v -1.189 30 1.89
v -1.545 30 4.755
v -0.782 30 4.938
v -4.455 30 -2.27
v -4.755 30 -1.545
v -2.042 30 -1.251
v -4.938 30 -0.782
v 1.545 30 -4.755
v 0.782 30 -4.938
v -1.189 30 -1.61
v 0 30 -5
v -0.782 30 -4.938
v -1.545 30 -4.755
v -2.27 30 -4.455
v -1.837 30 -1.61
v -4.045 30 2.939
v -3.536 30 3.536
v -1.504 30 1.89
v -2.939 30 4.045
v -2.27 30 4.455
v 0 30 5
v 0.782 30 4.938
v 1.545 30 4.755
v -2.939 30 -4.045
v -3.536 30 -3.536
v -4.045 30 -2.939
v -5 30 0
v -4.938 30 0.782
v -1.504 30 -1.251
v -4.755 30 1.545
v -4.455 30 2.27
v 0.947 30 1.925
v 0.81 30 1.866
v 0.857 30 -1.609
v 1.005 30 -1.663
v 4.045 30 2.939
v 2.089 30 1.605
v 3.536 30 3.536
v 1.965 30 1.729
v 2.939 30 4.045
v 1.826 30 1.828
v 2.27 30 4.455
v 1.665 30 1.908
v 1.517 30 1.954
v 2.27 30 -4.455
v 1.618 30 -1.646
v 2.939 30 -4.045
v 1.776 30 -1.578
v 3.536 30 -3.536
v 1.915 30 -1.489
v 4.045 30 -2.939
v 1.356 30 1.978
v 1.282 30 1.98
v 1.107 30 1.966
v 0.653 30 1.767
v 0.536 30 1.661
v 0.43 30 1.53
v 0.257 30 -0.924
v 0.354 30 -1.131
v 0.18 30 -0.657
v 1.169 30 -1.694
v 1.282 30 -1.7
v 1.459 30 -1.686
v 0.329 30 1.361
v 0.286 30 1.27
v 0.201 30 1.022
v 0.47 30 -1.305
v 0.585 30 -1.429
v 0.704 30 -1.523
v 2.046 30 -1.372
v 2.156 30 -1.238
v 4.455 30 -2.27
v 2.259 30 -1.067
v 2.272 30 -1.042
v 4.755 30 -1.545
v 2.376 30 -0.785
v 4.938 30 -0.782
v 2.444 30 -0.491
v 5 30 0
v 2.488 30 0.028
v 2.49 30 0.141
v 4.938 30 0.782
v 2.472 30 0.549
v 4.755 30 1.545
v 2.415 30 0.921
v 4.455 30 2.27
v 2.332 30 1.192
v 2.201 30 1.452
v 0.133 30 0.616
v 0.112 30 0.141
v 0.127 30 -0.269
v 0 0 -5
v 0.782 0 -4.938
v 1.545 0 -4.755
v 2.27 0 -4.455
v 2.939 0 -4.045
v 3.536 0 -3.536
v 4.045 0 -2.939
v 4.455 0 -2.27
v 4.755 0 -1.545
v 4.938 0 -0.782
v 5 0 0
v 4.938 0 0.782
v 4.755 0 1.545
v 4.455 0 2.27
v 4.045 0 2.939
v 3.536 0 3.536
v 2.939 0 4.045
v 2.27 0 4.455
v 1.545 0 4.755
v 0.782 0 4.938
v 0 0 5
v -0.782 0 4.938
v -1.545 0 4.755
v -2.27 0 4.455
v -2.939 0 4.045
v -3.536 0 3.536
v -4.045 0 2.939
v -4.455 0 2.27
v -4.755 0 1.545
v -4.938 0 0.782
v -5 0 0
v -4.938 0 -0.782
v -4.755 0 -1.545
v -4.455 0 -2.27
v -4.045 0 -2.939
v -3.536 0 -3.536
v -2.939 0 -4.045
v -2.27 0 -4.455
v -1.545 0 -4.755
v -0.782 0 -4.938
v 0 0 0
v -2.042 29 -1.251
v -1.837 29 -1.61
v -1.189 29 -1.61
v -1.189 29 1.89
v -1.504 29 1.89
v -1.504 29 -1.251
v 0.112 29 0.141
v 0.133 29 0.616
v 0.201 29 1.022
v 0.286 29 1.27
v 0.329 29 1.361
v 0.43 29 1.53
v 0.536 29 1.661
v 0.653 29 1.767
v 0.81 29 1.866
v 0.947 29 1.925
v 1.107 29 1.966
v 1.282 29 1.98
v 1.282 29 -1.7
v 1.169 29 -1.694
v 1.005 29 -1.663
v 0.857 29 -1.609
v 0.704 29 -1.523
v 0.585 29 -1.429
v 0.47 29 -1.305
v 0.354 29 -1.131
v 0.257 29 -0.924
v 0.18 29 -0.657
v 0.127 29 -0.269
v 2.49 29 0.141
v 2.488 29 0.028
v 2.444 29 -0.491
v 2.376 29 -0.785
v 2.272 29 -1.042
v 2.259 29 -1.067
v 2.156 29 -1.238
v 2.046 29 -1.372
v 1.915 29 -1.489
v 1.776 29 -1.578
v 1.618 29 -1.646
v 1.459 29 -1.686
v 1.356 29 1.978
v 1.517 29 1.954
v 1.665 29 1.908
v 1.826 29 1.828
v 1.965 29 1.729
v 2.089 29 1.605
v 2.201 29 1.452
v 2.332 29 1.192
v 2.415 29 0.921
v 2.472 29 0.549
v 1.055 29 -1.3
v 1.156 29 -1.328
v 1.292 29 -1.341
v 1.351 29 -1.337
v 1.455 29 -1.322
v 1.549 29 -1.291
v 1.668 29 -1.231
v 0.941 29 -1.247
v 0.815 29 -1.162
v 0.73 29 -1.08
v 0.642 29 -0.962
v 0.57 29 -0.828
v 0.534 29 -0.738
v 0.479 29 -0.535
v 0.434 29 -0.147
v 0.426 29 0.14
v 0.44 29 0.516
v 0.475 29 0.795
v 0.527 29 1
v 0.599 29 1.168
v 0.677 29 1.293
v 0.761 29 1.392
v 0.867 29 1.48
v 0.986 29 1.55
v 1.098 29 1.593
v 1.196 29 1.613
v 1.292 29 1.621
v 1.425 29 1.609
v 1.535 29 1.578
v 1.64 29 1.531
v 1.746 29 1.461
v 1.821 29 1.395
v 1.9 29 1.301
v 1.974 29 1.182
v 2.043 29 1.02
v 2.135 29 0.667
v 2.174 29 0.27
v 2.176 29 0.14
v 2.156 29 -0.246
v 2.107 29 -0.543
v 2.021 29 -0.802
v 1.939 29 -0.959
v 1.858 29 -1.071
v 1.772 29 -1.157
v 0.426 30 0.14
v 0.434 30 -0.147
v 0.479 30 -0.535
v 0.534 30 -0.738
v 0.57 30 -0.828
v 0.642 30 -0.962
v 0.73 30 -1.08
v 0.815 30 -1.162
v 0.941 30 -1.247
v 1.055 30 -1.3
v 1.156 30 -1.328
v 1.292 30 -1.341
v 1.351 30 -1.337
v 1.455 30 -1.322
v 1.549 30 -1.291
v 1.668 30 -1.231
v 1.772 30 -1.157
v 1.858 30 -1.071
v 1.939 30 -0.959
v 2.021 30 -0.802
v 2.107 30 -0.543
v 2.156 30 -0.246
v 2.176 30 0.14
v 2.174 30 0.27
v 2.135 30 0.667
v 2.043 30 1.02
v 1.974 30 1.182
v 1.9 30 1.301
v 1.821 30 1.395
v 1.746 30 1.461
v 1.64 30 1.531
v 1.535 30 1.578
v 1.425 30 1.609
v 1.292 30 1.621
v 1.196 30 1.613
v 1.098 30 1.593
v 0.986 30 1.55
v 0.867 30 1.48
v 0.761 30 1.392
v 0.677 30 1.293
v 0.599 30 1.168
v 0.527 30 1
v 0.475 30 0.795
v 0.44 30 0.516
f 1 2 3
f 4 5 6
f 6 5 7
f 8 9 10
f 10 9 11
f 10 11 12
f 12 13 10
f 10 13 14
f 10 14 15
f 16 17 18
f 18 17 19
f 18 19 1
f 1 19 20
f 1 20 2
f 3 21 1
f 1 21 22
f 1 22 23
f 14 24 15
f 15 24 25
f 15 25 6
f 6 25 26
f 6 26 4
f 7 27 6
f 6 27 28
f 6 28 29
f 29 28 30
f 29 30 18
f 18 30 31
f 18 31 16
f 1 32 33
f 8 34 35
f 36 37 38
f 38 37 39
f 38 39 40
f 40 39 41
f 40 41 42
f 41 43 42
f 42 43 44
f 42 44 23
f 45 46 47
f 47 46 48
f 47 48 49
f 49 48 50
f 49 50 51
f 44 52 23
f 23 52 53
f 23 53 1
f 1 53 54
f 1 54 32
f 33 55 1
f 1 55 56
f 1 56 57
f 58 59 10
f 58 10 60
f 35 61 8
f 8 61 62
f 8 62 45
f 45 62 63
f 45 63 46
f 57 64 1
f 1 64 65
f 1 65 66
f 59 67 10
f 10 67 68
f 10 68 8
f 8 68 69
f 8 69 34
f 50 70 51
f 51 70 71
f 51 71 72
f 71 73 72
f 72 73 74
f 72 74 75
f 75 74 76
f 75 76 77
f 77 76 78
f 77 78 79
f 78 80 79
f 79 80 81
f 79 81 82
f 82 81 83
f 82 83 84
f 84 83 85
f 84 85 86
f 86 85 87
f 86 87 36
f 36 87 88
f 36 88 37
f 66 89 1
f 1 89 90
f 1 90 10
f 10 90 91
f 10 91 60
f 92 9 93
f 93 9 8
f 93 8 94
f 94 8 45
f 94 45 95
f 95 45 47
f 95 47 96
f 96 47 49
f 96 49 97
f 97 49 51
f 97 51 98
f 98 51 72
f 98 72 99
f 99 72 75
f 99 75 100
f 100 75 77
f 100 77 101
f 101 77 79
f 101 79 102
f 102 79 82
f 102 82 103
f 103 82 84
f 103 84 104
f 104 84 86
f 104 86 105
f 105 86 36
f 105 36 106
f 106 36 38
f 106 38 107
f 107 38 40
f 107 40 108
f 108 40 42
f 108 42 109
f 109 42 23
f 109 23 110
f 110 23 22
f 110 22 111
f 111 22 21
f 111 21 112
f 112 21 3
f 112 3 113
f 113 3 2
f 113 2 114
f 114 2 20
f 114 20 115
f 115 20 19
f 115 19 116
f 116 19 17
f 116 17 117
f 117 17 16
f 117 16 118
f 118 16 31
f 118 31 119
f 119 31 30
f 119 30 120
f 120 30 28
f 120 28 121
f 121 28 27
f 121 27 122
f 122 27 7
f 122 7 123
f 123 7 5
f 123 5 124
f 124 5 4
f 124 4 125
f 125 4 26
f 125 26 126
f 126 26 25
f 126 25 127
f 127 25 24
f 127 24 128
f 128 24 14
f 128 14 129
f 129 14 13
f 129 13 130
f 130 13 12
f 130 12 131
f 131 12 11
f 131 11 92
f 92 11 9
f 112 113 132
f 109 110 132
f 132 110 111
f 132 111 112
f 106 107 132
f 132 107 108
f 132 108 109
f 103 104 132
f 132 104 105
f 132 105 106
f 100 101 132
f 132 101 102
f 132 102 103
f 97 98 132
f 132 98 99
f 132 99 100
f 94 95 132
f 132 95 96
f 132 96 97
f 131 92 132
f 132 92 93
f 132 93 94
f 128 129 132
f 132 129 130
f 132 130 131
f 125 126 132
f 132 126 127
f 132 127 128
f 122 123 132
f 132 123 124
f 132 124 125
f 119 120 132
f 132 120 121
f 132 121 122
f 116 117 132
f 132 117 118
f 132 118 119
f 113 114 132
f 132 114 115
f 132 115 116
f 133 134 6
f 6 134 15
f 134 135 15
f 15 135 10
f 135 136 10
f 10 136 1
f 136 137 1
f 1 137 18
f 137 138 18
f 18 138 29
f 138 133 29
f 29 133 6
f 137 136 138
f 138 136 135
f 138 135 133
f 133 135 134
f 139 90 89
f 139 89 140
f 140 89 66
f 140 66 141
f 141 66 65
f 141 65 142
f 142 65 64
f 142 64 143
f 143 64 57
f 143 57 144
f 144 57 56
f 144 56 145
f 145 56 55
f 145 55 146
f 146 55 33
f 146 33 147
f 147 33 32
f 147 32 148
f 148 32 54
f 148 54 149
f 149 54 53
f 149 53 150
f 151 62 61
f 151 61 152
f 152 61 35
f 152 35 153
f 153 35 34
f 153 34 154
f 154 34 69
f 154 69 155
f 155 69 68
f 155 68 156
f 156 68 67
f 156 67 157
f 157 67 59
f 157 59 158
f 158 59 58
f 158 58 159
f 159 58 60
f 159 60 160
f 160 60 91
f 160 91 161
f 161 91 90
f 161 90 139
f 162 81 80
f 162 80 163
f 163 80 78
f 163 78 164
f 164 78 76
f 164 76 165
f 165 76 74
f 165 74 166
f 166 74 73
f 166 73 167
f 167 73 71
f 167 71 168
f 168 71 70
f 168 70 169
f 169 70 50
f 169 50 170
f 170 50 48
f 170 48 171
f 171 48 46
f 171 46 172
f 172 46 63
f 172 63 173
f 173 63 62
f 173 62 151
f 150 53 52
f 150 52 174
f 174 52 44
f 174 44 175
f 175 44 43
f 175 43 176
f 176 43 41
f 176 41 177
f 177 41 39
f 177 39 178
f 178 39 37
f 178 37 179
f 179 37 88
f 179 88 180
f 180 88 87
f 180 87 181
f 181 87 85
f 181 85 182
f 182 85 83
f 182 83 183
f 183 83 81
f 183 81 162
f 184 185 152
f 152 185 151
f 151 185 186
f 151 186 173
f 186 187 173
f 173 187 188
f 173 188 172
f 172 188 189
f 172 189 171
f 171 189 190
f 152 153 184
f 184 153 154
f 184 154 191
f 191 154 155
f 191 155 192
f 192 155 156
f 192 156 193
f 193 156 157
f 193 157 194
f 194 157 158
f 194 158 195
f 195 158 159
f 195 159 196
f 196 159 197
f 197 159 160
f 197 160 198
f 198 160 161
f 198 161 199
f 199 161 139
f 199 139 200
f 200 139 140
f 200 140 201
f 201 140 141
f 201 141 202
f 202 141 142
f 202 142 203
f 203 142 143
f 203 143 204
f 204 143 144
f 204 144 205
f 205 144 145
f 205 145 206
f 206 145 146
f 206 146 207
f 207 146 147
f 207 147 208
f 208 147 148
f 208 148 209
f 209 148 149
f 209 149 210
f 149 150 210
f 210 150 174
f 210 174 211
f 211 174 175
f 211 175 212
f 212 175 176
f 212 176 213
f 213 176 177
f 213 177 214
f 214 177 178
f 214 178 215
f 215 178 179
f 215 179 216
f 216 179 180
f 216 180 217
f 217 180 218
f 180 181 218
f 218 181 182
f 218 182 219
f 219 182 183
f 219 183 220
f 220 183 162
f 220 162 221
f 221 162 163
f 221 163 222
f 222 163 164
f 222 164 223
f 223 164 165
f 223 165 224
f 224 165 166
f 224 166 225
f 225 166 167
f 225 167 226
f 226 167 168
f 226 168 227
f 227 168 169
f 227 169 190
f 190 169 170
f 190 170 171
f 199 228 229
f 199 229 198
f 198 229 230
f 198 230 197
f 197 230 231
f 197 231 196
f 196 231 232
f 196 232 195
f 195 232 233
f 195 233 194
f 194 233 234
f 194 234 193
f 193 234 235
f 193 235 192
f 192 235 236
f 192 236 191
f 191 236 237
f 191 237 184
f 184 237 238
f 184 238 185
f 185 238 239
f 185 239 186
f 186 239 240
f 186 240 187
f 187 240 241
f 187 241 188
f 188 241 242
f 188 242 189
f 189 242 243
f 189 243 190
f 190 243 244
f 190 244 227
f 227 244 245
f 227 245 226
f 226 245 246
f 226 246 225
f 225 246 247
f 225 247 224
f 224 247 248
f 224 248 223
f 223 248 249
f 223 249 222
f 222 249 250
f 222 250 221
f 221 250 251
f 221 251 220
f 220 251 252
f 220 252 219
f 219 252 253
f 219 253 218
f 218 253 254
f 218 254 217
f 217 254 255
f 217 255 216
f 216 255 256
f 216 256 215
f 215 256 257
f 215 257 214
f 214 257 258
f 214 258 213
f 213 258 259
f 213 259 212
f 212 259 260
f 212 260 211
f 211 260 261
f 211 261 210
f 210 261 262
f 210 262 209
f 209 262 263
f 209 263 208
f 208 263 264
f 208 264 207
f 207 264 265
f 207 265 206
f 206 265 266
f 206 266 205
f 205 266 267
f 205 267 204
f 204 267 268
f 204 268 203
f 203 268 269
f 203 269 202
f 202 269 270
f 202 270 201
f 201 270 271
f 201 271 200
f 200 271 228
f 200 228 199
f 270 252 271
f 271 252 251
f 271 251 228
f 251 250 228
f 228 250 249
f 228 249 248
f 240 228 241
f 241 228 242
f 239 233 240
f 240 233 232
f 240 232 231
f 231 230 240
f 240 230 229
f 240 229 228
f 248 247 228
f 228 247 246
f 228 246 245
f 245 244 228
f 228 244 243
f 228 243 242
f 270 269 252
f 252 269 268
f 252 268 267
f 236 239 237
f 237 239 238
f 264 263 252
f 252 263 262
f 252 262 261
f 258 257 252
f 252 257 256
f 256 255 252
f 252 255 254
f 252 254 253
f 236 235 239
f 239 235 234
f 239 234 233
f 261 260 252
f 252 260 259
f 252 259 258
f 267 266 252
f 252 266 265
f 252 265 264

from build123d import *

# Parameters (mm, degrees)
SKETCH1_R           = 5
BOSS_EXTRUDE1_DEPTH = 30
CUT_EXTRUDE1_DEPTH  = 1


with BuildPart() as part:
    # Sketch1 → Boss-Extrude1 (new body)
    with BuildSketch(Plane(origin=(0, 0, 0), x_dir=(1, 0, 0), z_dir=(0, 1, 0))):
        Circle(SKETCH1_R)
    extrude(amount=BOSS_EXTRUDE1_DEPTH)

    # Sketch2 → Cut-Extrude1 (cut)
    with BuildSketch(Plane(origin=(0, 30, 0), x_dir=(1, 0, 0), z_dir=(0, 1, 0))):
        Polygon((-1.836629209, 1.610053215), (-1.189493792, 1.610053215), (-1.189493792, -1.889946785), (-1.503596356, -1.889946785), (-1.503596356, 1.251078856), (-2.042057895, 1.251078856), align=None)
        with BuildLine():
            add(Edge.make_bspline(
                [(0.111788259, -0.141349029), (0.112116277, -0.085251641), (0.112753457, 0.023718343), (0.119841878, 0.182502986), (0.131617221, 0.331463275), (0.147754593, 0.470606341), (0.167392574, 0.599968105), (0.19360806, 0.719202862), (0.223420863, 0.828862469), (0.257973309, 0.929304517), (0.296961098, 1.02188222), (0.339395358, 1.108307422), (0.386960153, 1.188449354), (0.436937066, 1.263587144), (0.491349137, 1.332490839), (0.548647928, 1.396133502), (0.611069804, 1.453044252), (0.676492812, 1.504890555), (0.745509277, 1.550340026), (0.816151943, 1.590372765), (0.888907049, 1.624572632), (0.963973232, 1.651463068), (1.04067579, 1.673673915), (1.119282856, 1.688862862), (1.19992422, 1.698419771), (1.254355655, 1.699333439), (1.281960535, 1.699796805)],
                knots=[0, 0, 0, 0, 0.000168282, 0.000326891, 0.000476705, 0.00061646, 0.000747059, 0.00086904, 0.000982494, 0.001087814, 0.001187428, 0.001283689, 0.001376399, 0.001466822, 0.001554203, 0.001639568, 0.001723424, 0.001807301, 0.001889751, 0.001971063, 0.002050735, 0.002130583, 0.002210036, 0.002290062, 0.002370508, 0.002453288, 0.002453288, 0.002453288, 0.002453288], degree=3))
            add(Edge.make_bspline(
                [(1.281960535, 1.699796805), (1.309796013, 1.69930899), (1.365152022, 1.698338879), (1.446992397, 1.689014936), (1.526942079, 1.673543813), (1.604660218, 1.651622839), (1.680785204, 1.624427162), (1.754721612, 1.590340045), (1.826928694, 1.550661177), (1.896258981, 1.5040373), (1.963473596, 1.452055024), (2.026921559, 1.393292355), (2.086608645, 1.328342636), (2.143283951, 1.257900772), (2.195339548, 1.180615687), (2.24491298, 1.097831577), (2.289285016, 1.008100712), (2.332019691, 0.912920245), (2.368906678, 0.809656586), (2.402172923, 0.698891825), (2.429051892, 0.579317638), (2.451441164, 0.451561393), (2.46878606, 0.31515391), (2.481418702, 0.170387594), (2.488091787, 0.017167204), (2.489348488, -0.087590645), (2.489993387, -0.141349029)],
                knots=[0, 0, 0, 0, 8.3481e-05, 0.000166017, 0.000246731, 0.000327534, 0.000408041, 0.000488986, 0.000571522, 0.000654944, 0.000739373, 0.000826202, 0.000914021, 0.001003809, 0.001097153, 0.001193347, 0.001293057, 0.001397277, 0.001506176, 0.001621751, 0.001744038, 0.001873599, 0.002010742, 0.002156422, 0.002309427, 0.002470709, 0.002470709, 0.002470709, 0.002470709], degree=3))
            add(Edge.make_bspline(
                [(2.489993387, -0.141349029), (2.489341803, -0.194872936), (2.488072217, -0.299162088), (2.48149351, -0.451693064), (2.468534879, -0.595691107), (2.452324891, -0.731501569), (2.429873928, -0.858559188), (2.402268761, -0.977303637), (2.371618439, -1.088247708), (2.333783644, -1.19048252), (2.292372934, -1.285434243), (2.247317738, -1.374101391), (2.199047912, -1.457267684), (2.146459167, -1.534267431), (2.090405754, -1.605646088), (2.029687965, -1.670143711), (1.96601738, -1.729314382), (1.898604964, -1.78196601), (1.828193413, -1.828050815), (1.756234336, -1.869264665), (1.681450952, -1.90249736), (1.605538, -1.931032401), (1.527409634, -1.952832853), (1.447163243, -1.967906708), (1.365207007, -1.978478557), (1.309805442, -1.979285037), (1.281960535, -1.979690375)],
                knots=[0, 0, 0, 0, 0.000160581, 0.000312886, 0.000457868, 0.000594226, 0.000723097, 0.000844701, 0.000959884, 0.001068125, 0.001171421, 0.001270505, 0.001366343, 0.001459687, 0.001550023, 0.00163832, 0.001725149, 0.001810562, 0.001894568, 0.001977446, 0.00205903, 0.002139777, 0.00222058, 0.002301983, 0.002384599, 0.00246808, 0.00246808, 0.00246808, 0.00246808], degree=3))
            add(Edge.make_bspline(
                [(1.281960535, -1.979690375), (1.254356421, -1.979224019), (1.199926496, -1.978304457), (1.119274071, -1.968790726), (1.040991627, -1.953495223), (0.964692873, -1.932078618), (0.889986358, -1.905863782), (0.817890071, -1.871710099), (0.747602388, -1.83237603), (0.679310832, -1.787580608), (0.614298671, -1.736258925), (0.552200065, -1.679494636), (0.494575046, -1.615871225), (0.440940951, -1.546393302), (0.389966862, -1.47170006), (0.343077489, -1.390771687), (0.299706635, -1.303929076), (0.260063144, -1.210611165), (0.224914481, -1.109456238), (0.193866773, -0.999307059), (0.169352615, -0.879191423), (0.14836966, -0.750074056), (0.131445277, -0.611400125), (0.119890952, -0.463094347), (0.112749637, -0.305249138), (0.112114566, -0.196979364), (0.111788259, -0.141349029)],
                knots=[0, 0, 0, 0, 8.278e-05, 0.000163226, 0.000243252, 0.00032184, 0.00040079, 0.000480463, 0.00056082, 0.000642298, 0.000725191, 0.000809047, 0.000894412, 0.000982346, 0.001072188, 0.001165503, 0.001262704, 0.001363236, 0.001469448, 0.001583766, 0.001706286, 0.001836995, 0.001976138, 0.002125253, 0.002283161, 0.002450041, 0.002450041, 0.002450041, 0.002450041], degree=3))
        make_face()
        with BuildLine():
            add(Edge.make_bspline(
                [(0.425890823, -0.139946785), (0.42601027, -0.186695484), (0.426242094, -0.277425529), (0.432298294, -0.40926879), (0.440548526, -0.532239118), (0.451189823, -0.646492655), (0.466992772, -0.751642667), (0.48469956, -0.84841235), (0.506247649, -0.936289587), (0.531742667, -1.015877398), (0.560781764, -1.088526467), (0.592487628, -1.156127682), (0.626548351, -1.219479618), (0.664667501, -1.278013227), (0.706182564, -1.331919391), (0.750155824, -1.382152223), (0.798228408, -1.426949204), (0.86473215, -1.480676059), (0.952528625, -1.536195193), (1.06314908, -1.584541283), (1.176817531, -1.614923739), (1.253968781, -1.618787495), (1.292477362, -1.620716016)],
                knots=[0, 0, 0, 0, 0.000140231, 0.000272162, 0.000395845, 0.00050998, 0.000616273, 0.00071473, 0.000805025, 0.000887508, 0.000965234, 0.00103957, 0.001111417, 0.001180842, 0.001248855, 0.001315406, 0.001380877, 0.0014457, 0.001571746, 0.00169106, 0.001806864, 0.001922266, 0.001922266, 0.001922266, 0.001922266], degree=3))
            add(Edge.make_bspline(
                [(1.292477362, -1.620716016), (1.331235033, -1.619118235), (1.408670357, -1.615925972), (1.521804152, -1.585127235), (1.631634422, -1.538657695), (1.717706362, -1.48371019), (1.783188906, -1.43138186), (1.830105896, -1.386767212), (1.873167944, -1.336811345), (1.914010019, -1.282912049), (1.951469095, -1.224039565), (1.985532232, -1.160476989), (2.01661558, -1.092047811), (2.034324626, -1.044278072), (2.043378804, -1.019854638)],
                knots=[0, 0, 0, 0, 0.000116044, 0.000231848, 0.000349318, 0.000472837, 0.000536674, 0.000600645, 0.000666733, 0.000734322, 0.000803367, 0.000875831, 0.000950509, 0.001028633, 0.001028633, 0.001028633, 0.001028633], degree=3))
            add(Edge.make_bspline(
                [(2.043378804, -1.019854638), (2.053930572, -0.988624898), (2.075355186, -0.925215134), (2.10296696, -0.826851482), (2.124712359, -0.723648718), (2.144275725, -0.616223601), (2.157628781, -0.5037839), (2.168376594, -0.386677516), (2.174707281, -0.264816154), (2.175492032, -0.182021163), (2.175890823, -0.139946785)],
                knots=[0, 0, 0, 0, 9.8886e-05, 0.00020078, 0.000306259, 0.000415188, 0.00052824, 0.000645799, 0.000767957, 0.000894177, 0.000894177, 0.000894177, 0.000894177], degree=3))
            add(Edge.make_bspline(
                [(2.175890823, -0.139946785), (2.175340634, -0.097879212), (2.174264346, -0.015586048), (2.170150359, 0.104932133), (2.159526784, 0.219399894), (2.147727665, 0.328310367), (2.130330444, 0.431060669), (2.111572637, 0.528510975), (2.086371425, 0.619453999), (2.05945165, 0.705313581), (2.028641254, 0.785114236), (1.99472552, 0.859228022), (1.958503761, 0.928012747), (1.919161521, 0.991279688), (1.877165838, 1.049312231), (1.831408289, 1.100946826), (1.783703916, 1.147783794), (1.71688673, 1.201246363), (1.62941244, 1.255758058), (1.520566793, 1.305923818), (1.407296149, 1.334732111), (1.330722695, 1.338793798), (1.292477362, 1.340822446)],
                knots=[0, 0, 0, 0, 0.000126219, 0.000246912, 0.000361616, 0.00047102, 0.00057545, 0.000674176, 0.000768567, 0.000858368, 0.000944043, 0.001024988, 0.001102772, 0.001177091, 0.00124833, 0.001317386, 0.001383826, 0.001448649, 0.001573728, 0.001692043, 0.001806995, 0.001921698, 0.001921698, 0.001921698, 0.001921698], degree=3))
            add(Edge.make_bspline(
                [(1.292477362, 1.340822446), (1.25376677, 1.338790999), (1.176275064, 1.334724405), (1.061827109, 1.306031151), (0.952122758, 1.256018186), (0.864879783, 1.201065813), (0.798015996, 1.148727502), (0.750933303, 1.103341048), (0.706787131, 1.053694793), (0.666119431, 0.999292878), (0.628030148, 0.940827511), (0.593049135, 0.877838746), (0.561531805, 0.810007382), (0.532447269, 0.737390947), (0.506874481, 0.657810002), (0.485780518, 0.570041009), (0.466293465, 0.473579117), (0.452498196, 0.367859609), (0.44023444, 0.253577456), (0.432353092, 0.130300137), (0.426221835, -0.001764243), (0.42600337, -0.092963402), (0.425890823, -0.139946785)],
                knots=[0, 0, 0, 0, 0.000116101, 0.000232413, 0.000351368, 0.000476447, 0.000540832, 0.000605795, 0.000672346, 0.000739935, 0.00080936, 0.000881545, 0.00095588, 0.001033607, 0.001116089, 0.001206384, 0.001304286, 0.001411174, 0.001526077, 0.001649061, 0.001781692, 0.001922624, 0.001922624, 0.001922624, 0.001922624], degree=3))
        make_face(mode=Mode.SUBTRACT)
    extrude(amount=-CUT_EXTRUDE1_DEPTH, mode=Mode.SUBTRACT)


solid = part.part
